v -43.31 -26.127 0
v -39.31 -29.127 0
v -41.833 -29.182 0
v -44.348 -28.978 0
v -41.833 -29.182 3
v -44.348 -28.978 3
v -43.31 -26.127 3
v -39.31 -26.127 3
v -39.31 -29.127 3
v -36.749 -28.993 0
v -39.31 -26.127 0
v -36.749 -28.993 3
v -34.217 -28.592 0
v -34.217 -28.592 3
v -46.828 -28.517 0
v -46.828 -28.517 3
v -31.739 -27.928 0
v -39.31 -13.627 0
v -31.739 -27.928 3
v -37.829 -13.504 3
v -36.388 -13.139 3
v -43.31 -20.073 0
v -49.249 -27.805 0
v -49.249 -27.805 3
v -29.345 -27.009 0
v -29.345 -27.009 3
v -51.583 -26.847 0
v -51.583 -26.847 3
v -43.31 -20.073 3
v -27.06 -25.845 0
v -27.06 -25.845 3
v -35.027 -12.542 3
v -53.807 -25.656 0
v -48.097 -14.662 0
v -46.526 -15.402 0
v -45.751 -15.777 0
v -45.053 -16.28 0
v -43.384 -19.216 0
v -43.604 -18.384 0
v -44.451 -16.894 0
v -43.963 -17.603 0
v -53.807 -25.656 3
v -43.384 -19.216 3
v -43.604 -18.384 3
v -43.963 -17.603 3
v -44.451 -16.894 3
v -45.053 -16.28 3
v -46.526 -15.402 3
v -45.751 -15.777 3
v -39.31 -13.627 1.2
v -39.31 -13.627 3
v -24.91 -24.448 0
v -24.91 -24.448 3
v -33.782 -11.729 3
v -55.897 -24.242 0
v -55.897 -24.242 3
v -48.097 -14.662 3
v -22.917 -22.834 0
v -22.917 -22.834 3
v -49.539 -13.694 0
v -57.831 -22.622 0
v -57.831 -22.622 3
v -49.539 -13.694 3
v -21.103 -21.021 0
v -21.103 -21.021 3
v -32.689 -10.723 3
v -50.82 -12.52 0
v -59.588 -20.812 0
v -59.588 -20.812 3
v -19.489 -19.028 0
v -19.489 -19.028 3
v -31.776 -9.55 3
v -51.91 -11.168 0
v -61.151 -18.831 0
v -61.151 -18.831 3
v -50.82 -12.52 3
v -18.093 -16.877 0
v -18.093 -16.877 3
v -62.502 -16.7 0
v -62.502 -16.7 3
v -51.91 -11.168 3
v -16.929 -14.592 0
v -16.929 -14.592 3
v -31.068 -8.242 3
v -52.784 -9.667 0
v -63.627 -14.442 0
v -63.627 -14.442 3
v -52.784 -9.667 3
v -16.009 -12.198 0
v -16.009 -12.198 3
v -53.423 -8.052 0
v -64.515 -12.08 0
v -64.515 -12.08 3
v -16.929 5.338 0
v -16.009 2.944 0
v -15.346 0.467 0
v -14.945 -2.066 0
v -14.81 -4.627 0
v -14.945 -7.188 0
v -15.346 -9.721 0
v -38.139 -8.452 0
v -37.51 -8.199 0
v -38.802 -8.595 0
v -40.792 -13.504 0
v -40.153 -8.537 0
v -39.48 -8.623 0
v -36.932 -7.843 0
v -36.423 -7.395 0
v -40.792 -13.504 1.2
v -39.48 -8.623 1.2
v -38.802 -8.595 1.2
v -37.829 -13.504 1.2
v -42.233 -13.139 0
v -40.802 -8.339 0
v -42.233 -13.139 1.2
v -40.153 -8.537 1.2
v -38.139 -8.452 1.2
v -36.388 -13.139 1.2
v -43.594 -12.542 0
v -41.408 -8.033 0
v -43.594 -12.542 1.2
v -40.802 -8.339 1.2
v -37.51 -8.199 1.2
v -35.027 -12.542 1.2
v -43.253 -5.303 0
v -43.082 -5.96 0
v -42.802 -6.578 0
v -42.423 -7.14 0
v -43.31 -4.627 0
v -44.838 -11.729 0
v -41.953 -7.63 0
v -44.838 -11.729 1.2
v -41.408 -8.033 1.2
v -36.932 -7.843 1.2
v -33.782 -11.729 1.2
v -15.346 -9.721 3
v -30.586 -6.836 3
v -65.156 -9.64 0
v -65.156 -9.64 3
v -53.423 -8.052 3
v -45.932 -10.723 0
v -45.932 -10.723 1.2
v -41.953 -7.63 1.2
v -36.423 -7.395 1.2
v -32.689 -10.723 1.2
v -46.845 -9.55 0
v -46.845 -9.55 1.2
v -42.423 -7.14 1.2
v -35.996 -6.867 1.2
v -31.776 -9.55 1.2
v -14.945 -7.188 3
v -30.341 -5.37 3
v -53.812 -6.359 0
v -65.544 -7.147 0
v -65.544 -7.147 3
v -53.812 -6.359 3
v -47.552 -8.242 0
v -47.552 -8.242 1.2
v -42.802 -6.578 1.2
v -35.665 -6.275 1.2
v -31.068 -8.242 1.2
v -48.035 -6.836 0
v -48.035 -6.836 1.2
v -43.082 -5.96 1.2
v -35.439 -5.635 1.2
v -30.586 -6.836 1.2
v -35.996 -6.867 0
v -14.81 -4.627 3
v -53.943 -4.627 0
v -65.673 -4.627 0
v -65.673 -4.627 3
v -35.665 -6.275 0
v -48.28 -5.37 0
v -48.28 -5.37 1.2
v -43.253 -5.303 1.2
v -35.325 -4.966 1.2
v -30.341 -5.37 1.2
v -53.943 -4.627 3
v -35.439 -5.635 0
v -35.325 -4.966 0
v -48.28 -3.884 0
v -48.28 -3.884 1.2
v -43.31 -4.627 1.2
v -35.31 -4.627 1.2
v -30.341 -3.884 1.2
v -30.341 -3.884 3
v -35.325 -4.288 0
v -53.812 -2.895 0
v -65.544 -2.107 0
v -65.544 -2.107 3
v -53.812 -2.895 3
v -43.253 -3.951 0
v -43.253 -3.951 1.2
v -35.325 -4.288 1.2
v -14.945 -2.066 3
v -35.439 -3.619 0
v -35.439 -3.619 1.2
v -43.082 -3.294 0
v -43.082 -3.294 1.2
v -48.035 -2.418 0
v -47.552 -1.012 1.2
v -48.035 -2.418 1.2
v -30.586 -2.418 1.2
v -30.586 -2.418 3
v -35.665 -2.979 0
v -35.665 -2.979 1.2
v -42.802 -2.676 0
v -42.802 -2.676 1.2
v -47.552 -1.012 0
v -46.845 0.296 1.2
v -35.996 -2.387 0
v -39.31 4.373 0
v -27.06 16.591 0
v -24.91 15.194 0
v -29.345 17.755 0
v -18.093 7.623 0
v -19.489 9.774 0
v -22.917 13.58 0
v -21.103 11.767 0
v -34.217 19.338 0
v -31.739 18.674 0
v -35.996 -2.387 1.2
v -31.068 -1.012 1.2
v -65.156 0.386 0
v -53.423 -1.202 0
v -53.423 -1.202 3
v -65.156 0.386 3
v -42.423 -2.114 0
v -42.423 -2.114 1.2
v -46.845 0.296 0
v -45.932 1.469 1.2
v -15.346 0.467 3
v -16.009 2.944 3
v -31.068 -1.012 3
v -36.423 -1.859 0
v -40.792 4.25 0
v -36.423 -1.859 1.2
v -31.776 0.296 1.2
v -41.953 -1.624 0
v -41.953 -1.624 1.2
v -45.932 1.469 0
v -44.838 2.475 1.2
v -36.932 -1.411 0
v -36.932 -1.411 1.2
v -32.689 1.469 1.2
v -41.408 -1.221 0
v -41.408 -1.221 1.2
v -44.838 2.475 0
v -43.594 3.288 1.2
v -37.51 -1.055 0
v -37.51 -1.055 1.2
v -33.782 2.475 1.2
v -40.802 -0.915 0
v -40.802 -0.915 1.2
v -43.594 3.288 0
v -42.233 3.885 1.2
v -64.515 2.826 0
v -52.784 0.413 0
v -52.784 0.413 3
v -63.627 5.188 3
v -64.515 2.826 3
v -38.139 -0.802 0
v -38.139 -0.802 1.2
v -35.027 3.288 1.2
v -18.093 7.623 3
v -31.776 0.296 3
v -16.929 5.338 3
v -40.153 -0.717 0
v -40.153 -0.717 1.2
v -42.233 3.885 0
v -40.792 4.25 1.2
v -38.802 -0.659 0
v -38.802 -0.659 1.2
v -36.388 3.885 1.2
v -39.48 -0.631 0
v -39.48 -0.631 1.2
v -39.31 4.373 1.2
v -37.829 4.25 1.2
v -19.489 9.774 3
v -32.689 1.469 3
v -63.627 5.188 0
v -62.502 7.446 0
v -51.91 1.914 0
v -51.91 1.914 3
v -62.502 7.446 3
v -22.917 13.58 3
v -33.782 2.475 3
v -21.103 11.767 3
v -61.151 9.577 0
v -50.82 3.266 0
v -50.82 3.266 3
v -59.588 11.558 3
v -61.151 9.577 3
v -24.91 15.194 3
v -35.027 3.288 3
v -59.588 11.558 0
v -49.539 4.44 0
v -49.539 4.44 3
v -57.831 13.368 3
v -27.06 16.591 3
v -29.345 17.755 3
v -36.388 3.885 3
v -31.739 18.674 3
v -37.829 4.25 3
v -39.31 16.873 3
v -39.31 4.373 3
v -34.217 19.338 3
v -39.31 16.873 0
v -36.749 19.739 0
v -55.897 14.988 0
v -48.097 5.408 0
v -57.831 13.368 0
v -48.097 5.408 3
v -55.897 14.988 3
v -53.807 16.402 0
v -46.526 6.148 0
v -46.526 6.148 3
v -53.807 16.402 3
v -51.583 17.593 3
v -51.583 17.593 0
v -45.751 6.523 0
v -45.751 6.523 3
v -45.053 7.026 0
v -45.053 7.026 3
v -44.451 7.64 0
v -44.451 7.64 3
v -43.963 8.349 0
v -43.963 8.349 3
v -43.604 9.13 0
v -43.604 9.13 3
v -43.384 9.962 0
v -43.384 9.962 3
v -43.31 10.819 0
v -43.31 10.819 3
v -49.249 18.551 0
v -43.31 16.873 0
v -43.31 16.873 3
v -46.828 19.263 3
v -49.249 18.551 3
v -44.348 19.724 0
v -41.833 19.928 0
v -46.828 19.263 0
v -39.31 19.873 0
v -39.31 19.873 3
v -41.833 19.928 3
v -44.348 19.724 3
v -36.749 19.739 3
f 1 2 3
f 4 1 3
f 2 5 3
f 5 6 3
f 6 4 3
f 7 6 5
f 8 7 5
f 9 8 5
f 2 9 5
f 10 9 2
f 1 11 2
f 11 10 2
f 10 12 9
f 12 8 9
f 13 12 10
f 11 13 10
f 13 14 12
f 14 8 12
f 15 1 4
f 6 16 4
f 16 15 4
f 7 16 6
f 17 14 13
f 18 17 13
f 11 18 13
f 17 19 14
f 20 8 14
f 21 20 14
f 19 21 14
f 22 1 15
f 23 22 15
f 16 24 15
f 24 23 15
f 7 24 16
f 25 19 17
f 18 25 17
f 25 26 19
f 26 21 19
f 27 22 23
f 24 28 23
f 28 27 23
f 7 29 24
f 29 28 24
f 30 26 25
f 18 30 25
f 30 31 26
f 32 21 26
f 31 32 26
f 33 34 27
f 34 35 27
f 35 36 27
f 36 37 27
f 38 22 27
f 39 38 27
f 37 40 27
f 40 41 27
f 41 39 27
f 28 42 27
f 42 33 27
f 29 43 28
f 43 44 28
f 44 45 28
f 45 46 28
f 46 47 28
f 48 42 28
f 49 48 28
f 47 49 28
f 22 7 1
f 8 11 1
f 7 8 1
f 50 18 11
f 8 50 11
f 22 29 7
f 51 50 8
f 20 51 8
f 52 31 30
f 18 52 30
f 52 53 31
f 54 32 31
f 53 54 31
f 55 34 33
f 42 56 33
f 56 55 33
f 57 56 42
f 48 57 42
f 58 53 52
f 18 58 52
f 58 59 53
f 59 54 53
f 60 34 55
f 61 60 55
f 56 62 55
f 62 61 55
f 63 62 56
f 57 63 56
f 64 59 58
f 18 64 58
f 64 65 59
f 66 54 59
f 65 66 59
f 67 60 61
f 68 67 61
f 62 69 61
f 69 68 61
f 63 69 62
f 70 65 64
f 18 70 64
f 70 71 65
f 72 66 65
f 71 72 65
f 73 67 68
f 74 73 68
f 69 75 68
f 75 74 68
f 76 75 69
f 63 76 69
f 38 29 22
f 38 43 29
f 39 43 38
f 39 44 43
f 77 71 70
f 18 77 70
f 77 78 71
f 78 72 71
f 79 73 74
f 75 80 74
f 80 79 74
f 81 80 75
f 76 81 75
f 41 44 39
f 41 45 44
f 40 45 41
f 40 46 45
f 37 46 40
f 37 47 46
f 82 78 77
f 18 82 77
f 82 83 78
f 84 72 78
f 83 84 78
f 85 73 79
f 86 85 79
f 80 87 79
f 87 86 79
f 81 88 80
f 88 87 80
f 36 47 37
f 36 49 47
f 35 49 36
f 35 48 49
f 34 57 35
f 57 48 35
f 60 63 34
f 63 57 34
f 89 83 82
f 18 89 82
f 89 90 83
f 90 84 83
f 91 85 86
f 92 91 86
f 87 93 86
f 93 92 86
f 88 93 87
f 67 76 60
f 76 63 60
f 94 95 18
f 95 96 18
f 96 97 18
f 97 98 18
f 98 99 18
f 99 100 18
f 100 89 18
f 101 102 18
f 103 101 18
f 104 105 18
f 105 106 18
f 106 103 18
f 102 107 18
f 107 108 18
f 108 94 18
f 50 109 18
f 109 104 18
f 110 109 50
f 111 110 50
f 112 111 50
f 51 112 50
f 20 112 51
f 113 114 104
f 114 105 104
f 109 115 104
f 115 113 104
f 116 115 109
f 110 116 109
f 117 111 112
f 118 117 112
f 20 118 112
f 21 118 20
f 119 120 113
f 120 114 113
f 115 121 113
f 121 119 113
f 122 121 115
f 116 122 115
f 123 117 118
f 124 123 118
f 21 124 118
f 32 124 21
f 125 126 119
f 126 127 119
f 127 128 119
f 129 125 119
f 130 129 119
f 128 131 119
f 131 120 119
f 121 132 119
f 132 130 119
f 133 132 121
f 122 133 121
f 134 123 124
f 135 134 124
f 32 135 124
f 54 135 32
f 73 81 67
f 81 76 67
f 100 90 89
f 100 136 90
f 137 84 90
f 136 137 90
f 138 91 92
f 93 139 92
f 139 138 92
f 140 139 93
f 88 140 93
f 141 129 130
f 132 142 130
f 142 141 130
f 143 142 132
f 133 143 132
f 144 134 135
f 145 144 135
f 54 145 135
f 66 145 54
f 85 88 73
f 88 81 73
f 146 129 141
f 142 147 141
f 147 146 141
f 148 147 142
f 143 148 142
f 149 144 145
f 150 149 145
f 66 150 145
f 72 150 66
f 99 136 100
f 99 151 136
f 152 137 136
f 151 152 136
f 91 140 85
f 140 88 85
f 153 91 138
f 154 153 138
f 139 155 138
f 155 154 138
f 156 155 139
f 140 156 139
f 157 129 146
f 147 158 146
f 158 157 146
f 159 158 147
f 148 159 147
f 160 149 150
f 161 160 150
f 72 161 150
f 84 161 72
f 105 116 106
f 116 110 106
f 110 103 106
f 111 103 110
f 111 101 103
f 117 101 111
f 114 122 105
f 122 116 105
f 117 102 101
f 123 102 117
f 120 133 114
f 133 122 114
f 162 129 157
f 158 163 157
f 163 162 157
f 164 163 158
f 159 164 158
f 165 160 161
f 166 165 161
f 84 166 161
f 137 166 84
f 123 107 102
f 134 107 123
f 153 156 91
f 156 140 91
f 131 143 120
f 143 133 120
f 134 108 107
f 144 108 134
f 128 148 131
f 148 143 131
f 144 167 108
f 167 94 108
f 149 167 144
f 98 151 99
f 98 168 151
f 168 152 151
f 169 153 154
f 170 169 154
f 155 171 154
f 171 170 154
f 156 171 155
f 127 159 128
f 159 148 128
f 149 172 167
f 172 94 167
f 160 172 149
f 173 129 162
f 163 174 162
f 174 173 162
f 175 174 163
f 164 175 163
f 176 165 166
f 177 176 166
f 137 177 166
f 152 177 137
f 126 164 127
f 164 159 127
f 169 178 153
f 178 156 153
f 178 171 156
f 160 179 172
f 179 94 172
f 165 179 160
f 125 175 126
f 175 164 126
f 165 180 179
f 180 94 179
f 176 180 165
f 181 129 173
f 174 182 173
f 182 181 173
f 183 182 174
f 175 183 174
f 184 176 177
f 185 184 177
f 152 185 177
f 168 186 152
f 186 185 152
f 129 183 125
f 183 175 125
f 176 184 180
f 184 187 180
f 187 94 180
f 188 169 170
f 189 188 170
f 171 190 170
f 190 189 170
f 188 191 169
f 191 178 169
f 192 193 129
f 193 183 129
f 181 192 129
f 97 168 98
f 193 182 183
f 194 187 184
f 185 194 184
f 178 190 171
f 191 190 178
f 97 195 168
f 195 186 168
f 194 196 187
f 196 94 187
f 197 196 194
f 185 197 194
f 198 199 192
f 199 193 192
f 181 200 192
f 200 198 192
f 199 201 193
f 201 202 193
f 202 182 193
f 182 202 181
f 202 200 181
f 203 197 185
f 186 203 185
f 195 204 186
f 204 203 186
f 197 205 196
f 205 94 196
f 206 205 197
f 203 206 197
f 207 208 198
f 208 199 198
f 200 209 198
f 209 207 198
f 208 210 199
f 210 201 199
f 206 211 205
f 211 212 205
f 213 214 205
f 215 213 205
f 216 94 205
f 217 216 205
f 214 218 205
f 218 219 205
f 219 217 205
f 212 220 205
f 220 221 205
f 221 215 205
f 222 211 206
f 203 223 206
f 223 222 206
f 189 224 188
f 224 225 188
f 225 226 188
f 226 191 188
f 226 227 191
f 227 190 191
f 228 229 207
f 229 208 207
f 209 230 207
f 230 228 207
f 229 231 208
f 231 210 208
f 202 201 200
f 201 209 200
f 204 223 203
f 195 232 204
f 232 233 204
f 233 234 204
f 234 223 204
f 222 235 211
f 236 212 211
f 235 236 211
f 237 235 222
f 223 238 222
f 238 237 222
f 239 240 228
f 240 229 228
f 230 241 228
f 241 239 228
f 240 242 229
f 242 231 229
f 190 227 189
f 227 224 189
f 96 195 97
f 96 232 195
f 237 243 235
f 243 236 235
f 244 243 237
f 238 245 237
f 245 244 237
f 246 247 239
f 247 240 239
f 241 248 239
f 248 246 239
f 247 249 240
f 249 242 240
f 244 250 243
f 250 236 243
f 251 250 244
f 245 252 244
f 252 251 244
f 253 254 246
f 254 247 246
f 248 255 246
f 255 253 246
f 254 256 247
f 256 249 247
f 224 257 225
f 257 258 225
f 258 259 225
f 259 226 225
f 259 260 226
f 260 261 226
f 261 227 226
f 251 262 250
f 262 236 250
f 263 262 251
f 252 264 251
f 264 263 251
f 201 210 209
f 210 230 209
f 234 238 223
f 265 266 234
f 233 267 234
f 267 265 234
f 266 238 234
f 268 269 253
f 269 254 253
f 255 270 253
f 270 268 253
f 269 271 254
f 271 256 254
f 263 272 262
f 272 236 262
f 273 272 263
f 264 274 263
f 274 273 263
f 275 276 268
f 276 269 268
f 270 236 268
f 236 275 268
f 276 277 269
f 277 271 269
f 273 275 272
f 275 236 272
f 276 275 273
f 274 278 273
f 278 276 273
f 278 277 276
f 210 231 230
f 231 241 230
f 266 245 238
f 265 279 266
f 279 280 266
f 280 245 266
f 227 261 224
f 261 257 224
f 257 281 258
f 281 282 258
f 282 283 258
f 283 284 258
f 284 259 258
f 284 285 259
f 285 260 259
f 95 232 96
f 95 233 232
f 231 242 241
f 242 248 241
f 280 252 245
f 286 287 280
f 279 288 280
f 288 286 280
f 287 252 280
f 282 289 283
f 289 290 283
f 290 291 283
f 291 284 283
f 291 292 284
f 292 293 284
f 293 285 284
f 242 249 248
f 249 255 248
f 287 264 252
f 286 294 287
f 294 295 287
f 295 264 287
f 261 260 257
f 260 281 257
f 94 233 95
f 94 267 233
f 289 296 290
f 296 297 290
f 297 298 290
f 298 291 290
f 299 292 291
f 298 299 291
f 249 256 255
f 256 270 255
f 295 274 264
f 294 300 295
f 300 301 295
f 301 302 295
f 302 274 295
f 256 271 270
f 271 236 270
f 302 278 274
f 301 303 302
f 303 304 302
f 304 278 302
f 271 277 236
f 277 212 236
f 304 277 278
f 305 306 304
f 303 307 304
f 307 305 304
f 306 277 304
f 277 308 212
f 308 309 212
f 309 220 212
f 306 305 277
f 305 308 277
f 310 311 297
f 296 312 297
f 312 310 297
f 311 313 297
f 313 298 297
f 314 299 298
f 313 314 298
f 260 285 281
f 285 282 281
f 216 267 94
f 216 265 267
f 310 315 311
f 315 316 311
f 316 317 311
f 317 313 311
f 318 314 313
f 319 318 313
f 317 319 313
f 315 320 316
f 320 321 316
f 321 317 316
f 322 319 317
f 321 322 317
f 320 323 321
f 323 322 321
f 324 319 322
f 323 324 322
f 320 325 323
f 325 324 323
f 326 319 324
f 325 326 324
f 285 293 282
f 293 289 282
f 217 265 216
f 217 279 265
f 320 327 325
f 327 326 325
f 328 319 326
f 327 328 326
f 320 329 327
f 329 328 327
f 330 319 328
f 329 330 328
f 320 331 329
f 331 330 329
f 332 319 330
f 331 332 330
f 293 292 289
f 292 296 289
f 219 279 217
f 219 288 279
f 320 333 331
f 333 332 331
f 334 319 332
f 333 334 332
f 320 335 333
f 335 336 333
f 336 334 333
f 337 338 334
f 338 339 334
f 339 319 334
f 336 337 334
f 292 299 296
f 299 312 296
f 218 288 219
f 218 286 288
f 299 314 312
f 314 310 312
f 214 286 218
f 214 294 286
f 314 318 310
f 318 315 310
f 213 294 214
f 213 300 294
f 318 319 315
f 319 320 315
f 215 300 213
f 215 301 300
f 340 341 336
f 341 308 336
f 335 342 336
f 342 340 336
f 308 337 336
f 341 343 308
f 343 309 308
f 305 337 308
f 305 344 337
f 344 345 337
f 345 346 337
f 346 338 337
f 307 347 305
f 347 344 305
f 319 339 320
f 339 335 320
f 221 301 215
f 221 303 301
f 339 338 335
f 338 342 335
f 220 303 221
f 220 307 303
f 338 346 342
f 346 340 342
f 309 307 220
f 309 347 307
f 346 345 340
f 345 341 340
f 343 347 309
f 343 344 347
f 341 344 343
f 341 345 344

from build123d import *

# Parameters (mm, degrees)
SALIENTE_EXTRUIR1_DEPTH = 3
CROQUIS2_R              = 9
CORTAR_EXTRUIR1_DEPTH   = 1.8
SALIENTE_EXTRUIR2_DEPTH = 1.2
SALIENTE_EXTRUIR3_DEPTH = 3
REDONDEO1_R             = 5


with BuildPart() as part:
    # Croquis1 → Saliente-Extruir1 (new body)
    with BuildSketch(Plane.XY):
        with BuildLine():
            Line((-39.310376575, -0.627009646), (-39.310376575, 19.872990354))
            ThreePointArc((-39.310376575, 19.872990354), (-14.810376575, -4.627009646), (-39.310376575, -29.127009646))
            Line((-39.310376575, -29.127009646), (-39.310376575, -8.627009646))
            ThreePointArc((-39.310376575, -8.627009646), (-35.310376575, -4.627009646), (-39.310376575, -0.627009646))
        make_face()
    extrude(amount=SALIENTE_EXTRUIR1_DEPTH)

    # Croquis2 → Cortar-Extruir1 (cut)
    with BuildSketch(Plane.XY.offset(3)):
        with Locations((-39.310376575, -4.627009646)):
            Circle(CROQUIS2_R)
    extrude(amount=-CORTAR_EXTRUIR1_DEPTH, mode=Mode.SUBTRACT)

    # Croquis3 → Saliente-Extruir2 (add)
    with BuildSketch(Plane.XY.offset(1.2)):
        with BuildLine():
            Line((-39.310376575, 4.372990354), (-39.310376575, -0.627009646))
            ThreePointArc((-39.310376575, -0.627009646), (-43.310376575, -4.627009646), (-39.310376575, -8.627009646))
            Line((-39.310376575, -8.627009646), (-39.310376575, -13.627009646))
            ThreePointArc((-39.310376575, -13.627009646), (-48.310376575, -4.627009646), (-39.310376575, 4.372990354))
        make_face()
    extrude(amount=-SALIENTE_EXTRUIR2_DEPTH)

    # Croquis4 → Saliente-Extruir3 (add)
    with BuildSketch(Plane.XY.offset(3)):
        with BuildLine():
            Line((-39.310376575, 19.872990354), (-39.310376575, 16.872990354))
            Line((-39.310376575, 16.872990354), (-43.310376575, 16.872990354))
            Line((-43.310376575, 16.872990354), (-43.310376575, 6.872990354))
            ThreePointArc((-43.310376575, 6.872990354), (-53.943204224, -4.627009646), (-43.310376575, -16.127009646))
            Line((-43.310376575, -16.127009646), (-43.310376575, -26.127009646))
            Line((-43.310376575, -26.127009646), (-39.310376575, -26.127009646))
            Line((-39.310376575, -26.127009646), (-39.310376575, -29.127009646))
            ThreePointArc((-39.310376575, -29.127009646), (-65.673236128, -4.627009646), (-39.310376575, 19.872990354))
        make_face()
    extrude(amount=-SALIENTE_EXTRUIR3_DEPTH)

    # Redondeo1
    redondeo1_edges = [part.edges().sort_by_distance(p)[0] for p in [
        (-43.310376575, 6.872990354, 1.5),
        (-43.310376575, -16.127009646, 1.5),
    ]]
    fillet(redondeo1_edges, radius=REDONDEO1_R)


solid = part.part
